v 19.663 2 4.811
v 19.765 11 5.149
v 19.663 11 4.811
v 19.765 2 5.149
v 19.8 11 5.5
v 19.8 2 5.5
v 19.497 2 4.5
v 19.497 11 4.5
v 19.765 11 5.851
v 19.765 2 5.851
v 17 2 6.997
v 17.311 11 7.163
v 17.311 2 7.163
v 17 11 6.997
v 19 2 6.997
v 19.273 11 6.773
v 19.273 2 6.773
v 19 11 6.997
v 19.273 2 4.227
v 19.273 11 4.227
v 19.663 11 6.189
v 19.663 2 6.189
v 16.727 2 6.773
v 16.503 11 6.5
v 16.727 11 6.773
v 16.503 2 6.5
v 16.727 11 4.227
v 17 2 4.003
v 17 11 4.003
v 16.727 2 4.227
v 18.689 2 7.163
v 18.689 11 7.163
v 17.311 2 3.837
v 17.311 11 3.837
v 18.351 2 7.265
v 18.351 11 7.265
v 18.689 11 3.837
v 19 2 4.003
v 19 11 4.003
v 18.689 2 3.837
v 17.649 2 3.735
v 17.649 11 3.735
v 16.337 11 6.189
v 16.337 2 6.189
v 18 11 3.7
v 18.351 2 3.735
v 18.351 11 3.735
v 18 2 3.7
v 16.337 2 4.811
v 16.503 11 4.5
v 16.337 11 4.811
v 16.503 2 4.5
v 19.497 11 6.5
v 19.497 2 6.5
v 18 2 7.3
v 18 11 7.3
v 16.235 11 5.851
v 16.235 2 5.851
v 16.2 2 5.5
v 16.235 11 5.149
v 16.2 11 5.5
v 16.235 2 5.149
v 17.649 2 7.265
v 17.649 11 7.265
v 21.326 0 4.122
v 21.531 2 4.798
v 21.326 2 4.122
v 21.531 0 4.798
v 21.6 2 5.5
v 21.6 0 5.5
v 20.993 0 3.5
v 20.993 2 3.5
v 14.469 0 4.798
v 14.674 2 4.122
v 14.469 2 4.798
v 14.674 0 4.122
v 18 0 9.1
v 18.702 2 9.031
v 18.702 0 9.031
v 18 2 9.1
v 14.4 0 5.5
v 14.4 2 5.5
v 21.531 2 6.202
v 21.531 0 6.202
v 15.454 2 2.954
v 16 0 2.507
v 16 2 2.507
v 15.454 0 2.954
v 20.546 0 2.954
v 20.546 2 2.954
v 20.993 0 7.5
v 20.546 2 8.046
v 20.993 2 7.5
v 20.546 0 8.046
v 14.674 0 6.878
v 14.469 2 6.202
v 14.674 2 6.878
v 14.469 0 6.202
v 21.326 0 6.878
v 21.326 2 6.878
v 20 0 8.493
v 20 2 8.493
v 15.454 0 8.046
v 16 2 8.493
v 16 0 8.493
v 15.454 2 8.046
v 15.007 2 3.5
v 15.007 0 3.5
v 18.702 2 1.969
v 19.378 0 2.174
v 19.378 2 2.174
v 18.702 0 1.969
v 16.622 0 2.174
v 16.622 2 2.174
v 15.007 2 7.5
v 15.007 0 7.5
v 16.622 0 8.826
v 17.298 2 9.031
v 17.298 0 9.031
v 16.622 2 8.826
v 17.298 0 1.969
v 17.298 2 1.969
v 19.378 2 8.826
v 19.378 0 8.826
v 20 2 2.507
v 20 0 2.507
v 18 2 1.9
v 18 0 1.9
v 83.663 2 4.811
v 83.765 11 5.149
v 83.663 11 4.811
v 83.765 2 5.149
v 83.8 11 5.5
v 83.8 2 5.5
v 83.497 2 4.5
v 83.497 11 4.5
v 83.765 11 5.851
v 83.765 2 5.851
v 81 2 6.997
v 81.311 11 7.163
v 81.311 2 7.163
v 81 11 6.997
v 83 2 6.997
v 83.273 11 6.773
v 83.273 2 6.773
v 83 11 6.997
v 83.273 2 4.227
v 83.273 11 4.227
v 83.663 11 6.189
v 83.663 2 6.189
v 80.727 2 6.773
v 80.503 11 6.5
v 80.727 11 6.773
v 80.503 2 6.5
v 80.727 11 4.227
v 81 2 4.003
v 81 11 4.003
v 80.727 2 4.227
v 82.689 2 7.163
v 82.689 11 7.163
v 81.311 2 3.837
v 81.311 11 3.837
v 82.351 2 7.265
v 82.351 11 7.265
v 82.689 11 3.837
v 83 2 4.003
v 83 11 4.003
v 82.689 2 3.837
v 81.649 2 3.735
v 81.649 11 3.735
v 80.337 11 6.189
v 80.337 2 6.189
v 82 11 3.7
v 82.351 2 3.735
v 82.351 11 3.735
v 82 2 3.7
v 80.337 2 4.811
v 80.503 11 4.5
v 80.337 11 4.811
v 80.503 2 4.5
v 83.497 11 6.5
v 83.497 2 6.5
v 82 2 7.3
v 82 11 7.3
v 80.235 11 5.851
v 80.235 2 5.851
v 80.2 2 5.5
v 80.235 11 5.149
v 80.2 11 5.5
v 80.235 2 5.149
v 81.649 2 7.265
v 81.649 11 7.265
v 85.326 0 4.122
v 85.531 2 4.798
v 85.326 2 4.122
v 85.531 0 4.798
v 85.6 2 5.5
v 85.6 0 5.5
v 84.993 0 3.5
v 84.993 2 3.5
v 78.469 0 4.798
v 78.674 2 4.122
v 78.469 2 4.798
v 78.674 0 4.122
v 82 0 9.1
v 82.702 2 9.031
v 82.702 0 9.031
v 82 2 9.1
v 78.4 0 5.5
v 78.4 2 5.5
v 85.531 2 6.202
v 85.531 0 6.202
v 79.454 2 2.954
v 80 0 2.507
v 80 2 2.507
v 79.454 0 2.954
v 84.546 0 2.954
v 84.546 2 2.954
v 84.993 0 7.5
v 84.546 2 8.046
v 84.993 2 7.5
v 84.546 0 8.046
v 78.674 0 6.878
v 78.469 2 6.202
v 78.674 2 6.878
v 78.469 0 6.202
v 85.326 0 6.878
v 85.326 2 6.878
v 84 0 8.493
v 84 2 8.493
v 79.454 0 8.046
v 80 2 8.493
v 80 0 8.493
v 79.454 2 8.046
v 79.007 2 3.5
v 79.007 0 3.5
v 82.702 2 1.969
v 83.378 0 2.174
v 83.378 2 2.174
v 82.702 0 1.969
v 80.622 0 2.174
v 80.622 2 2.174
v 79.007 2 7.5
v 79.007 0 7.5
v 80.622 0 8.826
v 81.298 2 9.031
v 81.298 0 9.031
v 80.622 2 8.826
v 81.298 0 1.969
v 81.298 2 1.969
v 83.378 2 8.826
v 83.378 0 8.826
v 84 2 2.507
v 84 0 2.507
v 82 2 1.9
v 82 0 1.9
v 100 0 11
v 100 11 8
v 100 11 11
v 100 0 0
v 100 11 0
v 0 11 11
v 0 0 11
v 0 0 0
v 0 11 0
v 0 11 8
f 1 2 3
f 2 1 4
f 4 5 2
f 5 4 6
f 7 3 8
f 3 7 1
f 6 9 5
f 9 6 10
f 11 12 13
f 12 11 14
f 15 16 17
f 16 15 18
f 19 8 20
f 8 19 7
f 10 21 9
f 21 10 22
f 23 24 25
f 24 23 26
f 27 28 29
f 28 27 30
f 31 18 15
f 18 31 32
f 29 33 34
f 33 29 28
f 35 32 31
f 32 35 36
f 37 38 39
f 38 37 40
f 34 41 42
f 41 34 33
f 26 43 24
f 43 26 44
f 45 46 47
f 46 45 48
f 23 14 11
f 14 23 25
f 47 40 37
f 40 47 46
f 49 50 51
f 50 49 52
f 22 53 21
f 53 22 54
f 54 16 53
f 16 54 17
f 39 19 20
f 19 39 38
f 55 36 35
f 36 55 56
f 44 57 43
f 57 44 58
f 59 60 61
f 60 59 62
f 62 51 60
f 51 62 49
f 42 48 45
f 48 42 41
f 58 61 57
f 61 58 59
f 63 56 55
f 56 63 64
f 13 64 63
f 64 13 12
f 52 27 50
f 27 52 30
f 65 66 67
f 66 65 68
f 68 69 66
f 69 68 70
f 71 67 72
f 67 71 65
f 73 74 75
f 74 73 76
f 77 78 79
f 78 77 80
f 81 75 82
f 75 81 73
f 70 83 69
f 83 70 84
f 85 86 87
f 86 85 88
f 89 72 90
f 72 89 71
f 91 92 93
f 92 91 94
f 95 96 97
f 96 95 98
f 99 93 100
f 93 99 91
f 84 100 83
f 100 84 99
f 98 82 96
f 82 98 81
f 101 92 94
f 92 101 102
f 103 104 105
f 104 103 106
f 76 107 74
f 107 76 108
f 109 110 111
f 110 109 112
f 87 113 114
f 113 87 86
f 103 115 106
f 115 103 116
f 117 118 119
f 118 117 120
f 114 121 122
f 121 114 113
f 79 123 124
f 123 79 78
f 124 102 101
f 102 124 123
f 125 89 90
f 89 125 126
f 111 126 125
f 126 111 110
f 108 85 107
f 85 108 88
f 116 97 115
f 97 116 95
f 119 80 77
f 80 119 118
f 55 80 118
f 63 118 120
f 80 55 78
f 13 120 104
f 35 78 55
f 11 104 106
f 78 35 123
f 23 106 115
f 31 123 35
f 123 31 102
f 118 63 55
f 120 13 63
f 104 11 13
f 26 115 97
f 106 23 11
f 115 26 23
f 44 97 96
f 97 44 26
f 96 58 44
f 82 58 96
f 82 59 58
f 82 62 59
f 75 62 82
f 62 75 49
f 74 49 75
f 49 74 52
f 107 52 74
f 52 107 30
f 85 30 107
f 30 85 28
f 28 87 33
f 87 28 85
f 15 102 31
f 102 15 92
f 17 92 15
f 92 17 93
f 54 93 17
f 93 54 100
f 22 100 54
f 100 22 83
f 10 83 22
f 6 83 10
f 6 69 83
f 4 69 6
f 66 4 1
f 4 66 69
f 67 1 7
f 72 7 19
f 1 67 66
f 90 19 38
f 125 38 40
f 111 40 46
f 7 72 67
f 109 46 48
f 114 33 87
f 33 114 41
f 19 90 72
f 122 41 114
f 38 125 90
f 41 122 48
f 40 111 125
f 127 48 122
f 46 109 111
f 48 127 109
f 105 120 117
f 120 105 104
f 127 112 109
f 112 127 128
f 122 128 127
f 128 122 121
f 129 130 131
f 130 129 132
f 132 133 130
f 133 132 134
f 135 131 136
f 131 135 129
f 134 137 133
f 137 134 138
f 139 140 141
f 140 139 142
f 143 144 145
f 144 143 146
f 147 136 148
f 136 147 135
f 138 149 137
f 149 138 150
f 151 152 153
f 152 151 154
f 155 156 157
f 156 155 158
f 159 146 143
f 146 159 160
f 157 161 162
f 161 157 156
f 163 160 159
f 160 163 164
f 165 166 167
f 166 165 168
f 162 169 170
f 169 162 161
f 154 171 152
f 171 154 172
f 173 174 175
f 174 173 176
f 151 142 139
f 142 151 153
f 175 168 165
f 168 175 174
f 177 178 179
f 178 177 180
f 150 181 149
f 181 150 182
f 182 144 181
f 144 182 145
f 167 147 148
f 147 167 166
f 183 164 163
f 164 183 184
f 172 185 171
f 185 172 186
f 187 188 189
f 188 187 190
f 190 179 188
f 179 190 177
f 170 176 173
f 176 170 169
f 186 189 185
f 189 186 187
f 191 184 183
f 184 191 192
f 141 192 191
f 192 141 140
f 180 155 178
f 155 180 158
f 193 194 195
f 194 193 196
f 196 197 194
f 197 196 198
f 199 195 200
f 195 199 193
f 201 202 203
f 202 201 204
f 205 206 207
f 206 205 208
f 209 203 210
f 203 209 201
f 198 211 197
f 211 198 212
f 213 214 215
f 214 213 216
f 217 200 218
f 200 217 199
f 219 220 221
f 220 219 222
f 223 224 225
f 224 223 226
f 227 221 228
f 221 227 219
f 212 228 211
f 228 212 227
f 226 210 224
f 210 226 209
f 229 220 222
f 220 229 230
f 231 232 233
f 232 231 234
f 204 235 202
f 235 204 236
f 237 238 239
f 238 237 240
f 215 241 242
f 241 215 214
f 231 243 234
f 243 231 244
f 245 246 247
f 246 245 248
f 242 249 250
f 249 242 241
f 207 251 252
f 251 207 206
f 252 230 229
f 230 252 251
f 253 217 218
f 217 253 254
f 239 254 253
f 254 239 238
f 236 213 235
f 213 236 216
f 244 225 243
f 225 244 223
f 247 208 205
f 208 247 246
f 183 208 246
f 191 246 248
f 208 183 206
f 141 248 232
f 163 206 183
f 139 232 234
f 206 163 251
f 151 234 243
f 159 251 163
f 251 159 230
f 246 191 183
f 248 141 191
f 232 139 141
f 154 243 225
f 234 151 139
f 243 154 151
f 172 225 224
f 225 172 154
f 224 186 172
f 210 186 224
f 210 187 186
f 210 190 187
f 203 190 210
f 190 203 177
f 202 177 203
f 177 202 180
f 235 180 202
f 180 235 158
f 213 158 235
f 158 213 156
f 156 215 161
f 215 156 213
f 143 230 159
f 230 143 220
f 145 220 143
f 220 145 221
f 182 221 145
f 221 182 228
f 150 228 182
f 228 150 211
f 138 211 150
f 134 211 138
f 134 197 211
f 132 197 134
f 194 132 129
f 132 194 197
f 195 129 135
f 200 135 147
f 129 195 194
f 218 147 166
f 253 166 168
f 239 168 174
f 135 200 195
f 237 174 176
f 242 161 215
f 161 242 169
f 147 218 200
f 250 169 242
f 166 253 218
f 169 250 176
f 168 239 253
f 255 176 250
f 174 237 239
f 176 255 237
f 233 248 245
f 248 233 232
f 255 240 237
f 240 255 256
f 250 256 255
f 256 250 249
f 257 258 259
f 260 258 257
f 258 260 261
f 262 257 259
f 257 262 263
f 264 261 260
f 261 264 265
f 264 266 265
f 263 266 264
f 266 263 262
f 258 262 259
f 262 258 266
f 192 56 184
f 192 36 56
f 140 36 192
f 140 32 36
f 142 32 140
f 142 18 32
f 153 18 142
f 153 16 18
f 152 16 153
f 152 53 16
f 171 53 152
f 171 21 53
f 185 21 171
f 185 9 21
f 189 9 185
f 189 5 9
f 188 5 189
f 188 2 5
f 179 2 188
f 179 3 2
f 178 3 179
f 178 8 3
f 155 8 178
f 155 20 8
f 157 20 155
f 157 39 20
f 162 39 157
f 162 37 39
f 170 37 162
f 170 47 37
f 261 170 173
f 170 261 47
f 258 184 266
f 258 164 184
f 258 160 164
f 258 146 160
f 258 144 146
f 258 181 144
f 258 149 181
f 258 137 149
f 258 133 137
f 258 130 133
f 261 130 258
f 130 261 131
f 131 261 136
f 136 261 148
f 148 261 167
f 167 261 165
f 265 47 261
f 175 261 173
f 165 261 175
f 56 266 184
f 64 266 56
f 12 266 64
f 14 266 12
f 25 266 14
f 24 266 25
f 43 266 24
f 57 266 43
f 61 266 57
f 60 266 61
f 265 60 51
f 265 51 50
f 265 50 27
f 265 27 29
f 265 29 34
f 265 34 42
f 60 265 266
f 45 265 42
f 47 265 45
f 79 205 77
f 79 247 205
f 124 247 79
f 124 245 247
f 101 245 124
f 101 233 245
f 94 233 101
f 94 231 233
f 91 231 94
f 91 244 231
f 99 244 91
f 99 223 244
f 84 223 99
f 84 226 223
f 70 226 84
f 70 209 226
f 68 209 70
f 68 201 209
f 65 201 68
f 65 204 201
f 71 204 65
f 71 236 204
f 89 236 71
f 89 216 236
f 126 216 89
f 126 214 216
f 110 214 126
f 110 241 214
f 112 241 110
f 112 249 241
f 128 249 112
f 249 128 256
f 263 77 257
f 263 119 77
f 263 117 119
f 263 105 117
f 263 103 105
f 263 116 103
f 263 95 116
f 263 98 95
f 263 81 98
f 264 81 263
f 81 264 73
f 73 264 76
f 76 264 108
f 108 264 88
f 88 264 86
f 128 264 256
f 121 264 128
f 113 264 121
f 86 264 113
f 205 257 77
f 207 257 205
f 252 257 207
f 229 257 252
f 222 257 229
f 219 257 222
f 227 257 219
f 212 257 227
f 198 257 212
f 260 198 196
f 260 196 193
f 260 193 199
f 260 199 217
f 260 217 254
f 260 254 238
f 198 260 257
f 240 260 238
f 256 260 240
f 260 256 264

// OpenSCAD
// ======================================================================
// spacer.scad -- ABSTANDSHALTER fuer die langen Kofferwaende (oben/unten)
//
// Bleibt FEST im Koffer an einer langen Wand. Fuellt die ~11 mm Luecke zum
// Eurorack-Rahmen, damit der Rahmen beim Transport nicht nach oben/unten
// wandert. Montage: entweder mit 2 Schrauben in die Wand ODER ueber die flache
// Rueckseite mit doppelseitigem Klebeband. Die Vorderseite hat eine leichte
// Anlaufschraege, damit der Rahmen beim Einlegen von oben sanft zentriert wird.
//
// GEOMETRIE (lokal):
//   X = Laenge entlang der Wand          -> "lang"  (100 mm, schlanker Streifen)
//   Y = gap = Wand -> Rail (Fuellung)    -> "breit" (11 mm = Rest-Abstand
//                                           lange Cover-Unterseite <-> Rail)
//   Z = Hoehe                            -> schlank gehalten (11 mm)
// ======================================================================
$fn = 32;

gap        = 11;    // Luecke lange Cover-Unterseite -> Rail (Fuellung, "breit")
sp_len     = 100;   // Laenge entlang der Wand (X) -- langer schlanker Streifen
sp_h       = 11;    // Hoehe (Z) -- schlank statt klobig
lead_in    = 3;     // Anlaufschraege oben-vorne (zentriert den Rahmen)
back_t     = 3;     // Dicke der Klebe-/Schraub-Rueckwand
scr_d      = 3.6;   // Durchgangsloch fuer Wandschraube
scr_head   = 7.2;
scr_inset  = 18;    // Abstand der Schrauben von den Enden

// Schraubenpositionen entlang X (2 Stueck bei 100 mm gegen Kippeln)
screw_x = [scr_inset, sp_len - scr_inset];

module spacer() {
    difference() {
        cube([sp_len, gap, sp_h]);                        // Block Wand(Y=0) -> Rail(Y=gap)
        // Anlaufschraege oben-vorne (Railseite Y=gap, oben) - zentriert den Rahmen
        translate([-1, gap, sp_h]) rotate([0, 90, 0])
            linear_extrude(sp_len + 2)
                polygon([[0, 0], [lead_in, 0], [0, lead_in]]);
        // Schrauben waagerecht durch die Rueckwand (Y=0) in die Kofferwand
        for (x = screw_x)
            translate([x, -1, sp_h/2]) rotate([-90, 0, 0]) {
                cylinder(d = scr_d, h = gap + 2);
                cylinder(d = scr_head, h = back_t);
            }
    }
}
spacer();
